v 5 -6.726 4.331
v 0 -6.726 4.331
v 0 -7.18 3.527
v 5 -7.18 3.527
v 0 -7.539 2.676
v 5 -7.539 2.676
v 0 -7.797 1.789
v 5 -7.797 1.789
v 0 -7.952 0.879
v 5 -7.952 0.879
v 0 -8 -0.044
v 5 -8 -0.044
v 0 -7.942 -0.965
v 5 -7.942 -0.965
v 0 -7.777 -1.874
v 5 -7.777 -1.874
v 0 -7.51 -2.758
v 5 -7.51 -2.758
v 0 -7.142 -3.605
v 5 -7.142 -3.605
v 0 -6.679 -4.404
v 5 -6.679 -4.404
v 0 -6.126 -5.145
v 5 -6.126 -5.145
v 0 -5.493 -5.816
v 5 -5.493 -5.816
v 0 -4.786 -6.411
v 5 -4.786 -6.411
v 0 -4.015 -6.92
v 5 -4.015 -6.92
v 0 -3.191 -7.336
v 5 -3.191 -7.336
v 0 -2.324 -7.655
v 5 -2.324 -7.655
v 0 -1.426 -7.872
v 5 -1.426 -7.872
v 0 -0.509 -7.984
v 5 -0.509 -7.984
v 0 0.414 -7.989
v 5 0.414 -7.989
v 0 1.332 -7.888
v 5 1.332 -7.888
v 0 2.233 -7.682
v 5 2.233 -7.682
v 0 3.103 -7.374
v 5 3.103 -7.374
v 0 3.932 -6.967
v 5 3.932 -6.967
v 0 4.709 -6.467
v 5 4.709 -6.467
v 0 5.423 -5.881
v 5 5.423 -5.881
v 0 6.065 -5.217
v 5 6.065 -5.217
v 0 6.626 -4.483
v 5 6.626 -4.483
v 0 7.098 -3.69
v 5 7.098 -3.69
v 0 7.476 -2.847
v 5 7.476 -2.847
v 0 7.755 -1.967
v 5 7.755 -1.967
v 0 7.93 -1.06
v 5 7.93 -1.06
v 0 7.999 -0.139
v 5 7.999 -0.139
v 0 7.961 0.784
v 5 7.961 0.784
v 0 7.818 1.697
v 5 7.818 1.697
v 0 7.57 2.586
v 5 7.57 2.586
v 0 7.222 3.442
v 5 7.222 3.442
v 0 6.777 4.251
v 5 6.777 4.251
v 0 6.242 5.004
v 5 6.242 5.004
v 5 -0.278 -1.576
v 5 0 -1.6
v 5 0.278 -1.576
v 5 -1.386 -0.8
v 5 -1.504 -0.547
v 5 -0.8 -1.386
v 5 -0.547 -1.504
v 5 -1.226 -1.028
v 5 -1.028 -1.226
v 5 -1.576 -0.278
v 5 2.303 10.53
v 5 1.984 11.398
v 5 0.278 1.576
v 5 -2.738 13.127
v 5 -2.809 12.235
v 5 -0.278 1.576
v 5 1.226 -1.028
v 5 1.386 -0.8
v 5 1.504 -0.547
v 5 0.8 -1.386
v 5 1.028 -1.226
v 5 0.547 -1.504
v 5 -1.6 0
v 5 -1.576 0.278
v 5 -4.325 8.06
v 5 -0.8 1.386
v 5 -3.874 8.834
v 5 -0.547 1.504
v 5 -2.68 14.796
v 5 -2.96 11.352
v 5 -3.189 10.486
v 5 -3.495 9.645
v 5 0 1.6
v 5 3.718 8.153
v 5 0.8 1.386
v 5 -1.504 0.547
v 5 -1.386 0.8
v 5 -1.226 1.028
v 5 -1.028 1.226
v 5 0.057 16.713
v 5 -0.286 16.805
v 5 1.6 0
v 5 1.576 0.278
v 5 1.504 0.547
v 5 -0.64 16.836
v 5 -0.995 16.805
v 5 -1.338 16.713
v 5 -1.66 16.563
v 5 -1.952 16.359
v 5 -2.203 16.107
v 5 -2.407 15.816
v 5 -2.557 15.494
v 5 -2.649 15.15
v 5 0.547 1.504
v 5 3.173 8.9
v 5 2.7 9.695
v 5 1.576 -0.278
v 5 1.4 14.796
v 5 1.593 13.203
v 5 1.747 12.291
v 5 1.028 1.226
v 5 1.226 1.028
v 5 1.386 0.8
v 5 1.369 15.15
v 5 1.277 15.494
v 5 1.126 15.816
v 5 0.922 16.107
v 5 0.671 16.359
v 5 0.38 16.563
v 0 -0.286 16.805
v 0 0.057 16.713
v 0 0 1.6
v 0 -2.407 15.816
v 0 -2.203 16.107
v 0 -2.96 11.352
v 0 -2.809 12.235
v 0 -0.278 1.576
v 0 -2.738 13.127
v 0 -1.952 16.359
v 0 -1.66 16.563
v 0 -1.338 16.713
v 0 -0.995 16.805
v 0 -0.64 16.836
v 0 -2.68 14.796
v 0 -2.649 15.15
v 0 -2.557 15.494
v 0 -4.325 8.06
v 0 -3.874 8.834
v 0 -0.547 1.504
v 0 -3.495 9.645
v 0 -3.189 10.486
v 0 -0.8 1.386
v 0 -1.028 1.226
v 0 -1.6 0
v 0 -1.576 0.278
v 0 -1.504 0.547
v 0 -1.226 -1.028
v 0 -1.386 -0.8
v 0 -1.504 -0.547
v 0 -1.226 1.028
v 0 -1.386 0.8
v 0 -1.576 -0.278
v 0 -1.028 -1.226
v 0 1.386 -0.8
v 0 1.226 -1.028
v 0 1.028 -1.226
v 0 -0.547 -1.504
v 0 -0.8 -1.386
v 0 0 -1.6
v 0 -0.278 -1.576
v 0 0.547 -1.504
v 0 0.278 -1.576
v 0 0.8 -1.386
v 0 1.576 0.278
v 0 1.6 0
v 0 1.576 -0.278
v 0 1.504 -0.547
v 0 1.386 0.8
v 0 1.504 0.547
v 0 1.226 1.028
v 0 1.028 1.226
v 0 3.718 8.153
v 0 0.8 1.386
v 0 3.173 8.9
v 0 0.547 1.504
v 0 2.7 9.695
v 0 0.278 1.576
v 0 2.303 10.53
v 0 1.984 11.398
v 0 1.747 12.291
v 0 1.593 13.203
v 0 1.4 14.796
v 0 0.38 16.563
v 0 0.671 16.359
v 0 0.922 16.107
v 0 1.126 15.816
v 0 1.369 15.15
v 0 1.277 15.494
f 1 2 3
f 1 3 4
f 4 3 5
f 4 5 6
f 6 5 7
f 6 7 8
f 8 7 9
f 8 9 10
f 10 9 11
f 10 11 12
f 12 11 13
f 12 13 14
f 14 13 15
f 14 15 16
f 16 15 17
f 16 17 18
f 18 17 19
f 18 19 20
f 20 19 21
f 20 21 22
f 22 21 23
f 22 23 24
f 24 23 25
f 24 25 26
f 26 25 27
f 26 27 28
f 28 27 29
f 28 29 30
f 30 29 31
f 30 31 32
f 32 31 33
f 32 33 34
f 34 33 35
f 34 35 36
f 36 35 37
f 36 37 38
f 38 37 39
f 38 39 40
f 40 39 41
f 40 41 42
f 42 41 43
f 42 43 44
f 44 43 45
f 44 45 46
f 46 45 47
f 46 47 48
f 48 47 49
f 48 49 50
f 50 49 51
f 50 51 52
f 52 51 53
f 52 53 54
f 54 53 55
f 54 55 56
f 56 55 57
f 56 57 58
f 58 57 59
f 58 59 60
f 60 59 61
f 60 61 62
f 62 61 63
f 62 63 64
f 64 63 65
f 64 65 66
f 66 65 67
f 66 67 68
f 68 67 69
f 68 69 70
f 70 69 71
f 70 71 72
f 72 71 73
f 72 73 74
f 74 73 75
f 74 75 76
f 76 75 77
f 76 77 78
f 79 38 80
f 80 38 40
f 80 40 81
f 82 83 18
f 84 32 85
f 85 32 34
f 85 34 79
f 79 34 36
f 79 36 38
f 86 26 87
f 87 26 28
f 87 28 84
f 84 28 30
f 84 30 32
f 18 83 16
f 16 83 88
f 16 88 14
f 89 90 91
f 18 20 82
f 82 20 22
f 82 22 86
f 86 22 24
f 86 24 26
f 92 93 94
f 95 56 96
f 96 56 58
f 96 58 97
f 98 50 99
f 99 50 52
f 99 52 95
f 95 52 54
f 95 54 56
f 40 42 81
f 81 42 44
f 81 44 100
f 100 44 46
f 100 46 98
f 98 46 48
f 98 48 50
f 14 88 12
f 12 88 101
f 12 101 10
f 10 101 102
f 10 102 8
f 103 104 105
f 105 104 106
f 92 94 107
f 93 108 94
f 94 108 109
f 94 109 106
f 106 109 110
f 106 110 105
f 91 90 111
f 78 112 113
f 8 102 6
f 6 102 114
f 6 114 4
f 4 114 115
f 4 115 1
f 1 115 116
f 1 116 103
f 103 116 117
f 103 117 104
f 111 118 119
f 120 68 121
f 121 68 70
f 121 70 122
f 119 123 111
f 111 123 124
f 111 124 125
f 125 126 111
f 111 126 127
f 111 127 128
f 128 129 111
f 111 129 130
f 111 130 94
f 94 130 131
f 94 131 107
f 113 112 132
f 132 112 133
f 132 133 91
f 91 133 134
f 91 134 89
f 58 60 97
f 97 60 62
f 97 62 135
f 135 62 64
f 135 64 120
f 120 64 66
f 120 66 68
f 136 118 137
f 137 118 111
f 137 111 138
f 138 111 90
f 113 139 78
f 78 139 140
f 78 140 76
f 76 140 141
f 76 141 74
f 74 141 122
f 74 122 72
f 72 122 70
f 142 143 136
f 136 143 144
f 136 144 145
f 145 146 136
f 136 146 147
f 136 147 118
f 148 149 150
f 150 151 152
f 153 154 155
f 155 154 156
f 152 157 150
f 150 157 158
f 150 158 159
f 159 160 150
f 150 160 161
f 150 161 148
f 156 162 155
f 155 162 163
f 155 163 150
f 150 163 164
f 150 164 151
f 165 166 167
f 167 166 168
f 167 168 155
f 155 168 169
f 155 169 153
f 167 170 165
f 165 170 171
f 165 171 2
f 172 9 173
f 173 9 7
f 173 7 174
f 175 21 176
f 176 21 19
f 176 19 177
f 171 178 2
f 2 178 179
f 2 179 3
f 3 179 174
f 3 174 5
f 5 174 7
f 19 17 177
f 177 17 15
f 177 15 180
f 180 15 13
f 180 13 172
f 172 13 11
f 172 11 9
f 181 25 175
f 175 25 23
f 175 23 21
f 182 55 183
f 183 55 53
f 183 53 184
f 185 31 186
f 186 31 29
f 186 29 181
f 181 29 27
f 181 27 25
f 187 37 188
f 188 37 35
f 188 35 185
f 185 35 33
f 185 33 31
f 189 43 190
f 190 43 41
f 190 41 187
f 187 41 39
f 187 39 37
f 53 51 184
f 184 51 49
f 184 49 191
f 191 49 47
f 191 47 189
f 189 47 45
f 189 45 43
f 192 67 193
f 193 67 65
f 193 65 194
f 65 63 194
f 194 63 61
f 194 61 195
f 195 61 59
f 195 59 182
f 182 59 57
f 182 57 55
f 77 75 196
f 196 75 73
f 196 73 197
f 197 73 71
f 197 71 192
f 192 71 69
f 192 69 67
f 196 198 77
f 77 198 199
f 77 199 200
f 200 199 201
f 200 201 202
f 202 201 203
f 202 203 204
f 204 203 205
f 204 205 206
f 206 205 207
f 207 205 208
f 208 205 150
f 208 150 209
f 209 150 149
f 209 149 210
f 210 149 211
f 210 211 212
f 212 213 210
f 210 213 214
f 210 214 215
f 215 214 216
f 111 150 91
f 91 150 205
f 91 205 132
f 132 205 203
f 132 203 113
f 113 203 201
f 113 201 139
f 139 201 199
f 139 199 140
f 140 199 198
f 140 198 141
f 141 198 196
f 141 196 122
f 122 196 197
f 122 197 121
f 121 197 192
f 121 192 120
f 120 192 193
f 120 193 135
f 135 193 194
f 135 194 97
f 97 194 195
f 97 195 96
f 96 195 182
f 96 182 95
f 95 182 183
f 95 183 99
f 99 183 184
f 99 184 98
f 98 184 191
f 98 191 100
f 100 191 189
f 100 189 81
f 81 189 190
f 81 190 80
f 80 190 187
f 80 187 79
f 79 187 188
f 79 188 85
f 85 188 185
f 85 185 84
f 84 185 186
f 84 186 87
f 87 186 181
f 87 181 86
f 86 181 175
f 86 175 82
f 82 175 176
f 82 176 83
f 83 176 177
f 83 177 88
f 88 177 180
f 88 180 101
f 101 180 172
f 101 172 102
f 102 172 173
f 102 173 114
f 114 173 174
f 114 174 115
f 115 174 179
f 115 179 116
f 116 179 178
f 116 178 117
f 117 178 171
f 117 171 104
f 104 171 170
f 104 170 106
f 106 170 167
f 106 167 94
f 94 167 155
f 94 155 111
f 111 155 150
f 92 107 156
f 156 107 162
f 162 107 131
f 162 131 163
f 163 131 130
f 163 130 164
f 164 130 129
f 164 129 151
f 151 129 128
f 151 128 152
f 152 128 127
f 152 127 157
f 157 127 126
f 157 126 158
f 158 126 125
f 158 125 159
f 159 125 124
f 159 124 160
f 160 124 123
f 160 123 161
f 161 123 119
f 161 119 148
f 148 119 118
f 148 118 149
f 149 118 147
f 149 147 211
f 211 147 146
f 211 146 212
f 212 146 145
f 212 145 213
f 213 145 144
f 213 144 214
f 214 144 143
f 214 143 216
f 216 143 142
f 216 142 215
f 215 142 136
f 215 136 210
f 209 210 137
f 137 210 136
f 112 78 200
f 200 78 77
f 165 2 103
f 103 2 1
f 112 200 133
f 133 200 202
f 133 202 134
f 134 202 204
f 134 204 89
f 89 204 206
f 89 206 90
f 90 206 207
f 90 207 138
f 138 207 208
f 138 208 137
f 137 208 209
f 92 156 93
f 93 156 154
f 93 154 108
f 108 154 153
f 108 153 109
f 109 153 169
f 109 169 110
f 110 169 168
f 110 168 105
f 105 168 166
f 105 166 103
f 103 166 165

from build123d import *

# Parameters (mm, degrees)
SKETCH2_R           = 8
SKETCH2_R_2         = 1.6
BOSS_EXTRUDE1_DEPTH = 5
BOSS_EXTRUDE2_START = -5
BOSS_EXTRUDE2_DEPTH = 5
FILLET1_R           = 10
FILLET2_R           = 10


with BuildPart() as part:
    # Sketch2 → Boss-Extrude1 (new body)
    with BuildSketch(Plane(origin=(0, 0, 0), x_dir=(0, 0, -1), z_dir=(1, 0, 0))):
        Circle(SKETCH2_R)
        Circle(SKETCH2_R_2, mode=Mode.SUBTRACT)
    extrude(amount=BOSS_EXTRUDE1_DEPTH)

    # Sketch3 → Boss-Extrude2 (add)
    with BuildSketch(Plane(origin=(5, 0, 0), x_dir=(0, 0, -1), z_dir=(1, 0, 0)).offset(BOSS_EXTRUDE2_START)):
        with BuildLine():
            Line((-10.375290129, -2.83397632), (-4.331302353, -6.726055302))
            ThreePointArc((-4.331302353, -6.726055302), (-7.989266236, -0.414276496), (-5.003749355, 6.241994264))
            Line((-5.003749355, 6.241994264), (-10.375290129, 1.93602368))
            Line((-10.375290129, 1.93602368), (-14.796152799, 1.399716967))
            ThreePointArc((-14.796152799, 1.399716967), (-16.836152799, -0.640283033), (-14.796152799, -2.680283033))
            Line((-14.796152799, -2.680283033), (-10.375290129, -2.83397632))
        make_face()
    extrude(amount=BOSS_EXTRUDE2_DEPTH)

    # Fillet1
    fillet1_edges = [part.edges().sort_by_distance(p)[0] for p in [
        (2.5, 1.93602368, 10.375290129),
    ]]
    fillet(fillet1_edges, radius=FILLET1_R)

    # Fillet2
    fillet2_edges = [part.edges().sort_by_distance(p)[0] for p in [
        (2.5, -2.83397632, 10.375290129),
    ]]
    fillet(fillet2_edges, radius=FILLET2_R)


solid = part.part
